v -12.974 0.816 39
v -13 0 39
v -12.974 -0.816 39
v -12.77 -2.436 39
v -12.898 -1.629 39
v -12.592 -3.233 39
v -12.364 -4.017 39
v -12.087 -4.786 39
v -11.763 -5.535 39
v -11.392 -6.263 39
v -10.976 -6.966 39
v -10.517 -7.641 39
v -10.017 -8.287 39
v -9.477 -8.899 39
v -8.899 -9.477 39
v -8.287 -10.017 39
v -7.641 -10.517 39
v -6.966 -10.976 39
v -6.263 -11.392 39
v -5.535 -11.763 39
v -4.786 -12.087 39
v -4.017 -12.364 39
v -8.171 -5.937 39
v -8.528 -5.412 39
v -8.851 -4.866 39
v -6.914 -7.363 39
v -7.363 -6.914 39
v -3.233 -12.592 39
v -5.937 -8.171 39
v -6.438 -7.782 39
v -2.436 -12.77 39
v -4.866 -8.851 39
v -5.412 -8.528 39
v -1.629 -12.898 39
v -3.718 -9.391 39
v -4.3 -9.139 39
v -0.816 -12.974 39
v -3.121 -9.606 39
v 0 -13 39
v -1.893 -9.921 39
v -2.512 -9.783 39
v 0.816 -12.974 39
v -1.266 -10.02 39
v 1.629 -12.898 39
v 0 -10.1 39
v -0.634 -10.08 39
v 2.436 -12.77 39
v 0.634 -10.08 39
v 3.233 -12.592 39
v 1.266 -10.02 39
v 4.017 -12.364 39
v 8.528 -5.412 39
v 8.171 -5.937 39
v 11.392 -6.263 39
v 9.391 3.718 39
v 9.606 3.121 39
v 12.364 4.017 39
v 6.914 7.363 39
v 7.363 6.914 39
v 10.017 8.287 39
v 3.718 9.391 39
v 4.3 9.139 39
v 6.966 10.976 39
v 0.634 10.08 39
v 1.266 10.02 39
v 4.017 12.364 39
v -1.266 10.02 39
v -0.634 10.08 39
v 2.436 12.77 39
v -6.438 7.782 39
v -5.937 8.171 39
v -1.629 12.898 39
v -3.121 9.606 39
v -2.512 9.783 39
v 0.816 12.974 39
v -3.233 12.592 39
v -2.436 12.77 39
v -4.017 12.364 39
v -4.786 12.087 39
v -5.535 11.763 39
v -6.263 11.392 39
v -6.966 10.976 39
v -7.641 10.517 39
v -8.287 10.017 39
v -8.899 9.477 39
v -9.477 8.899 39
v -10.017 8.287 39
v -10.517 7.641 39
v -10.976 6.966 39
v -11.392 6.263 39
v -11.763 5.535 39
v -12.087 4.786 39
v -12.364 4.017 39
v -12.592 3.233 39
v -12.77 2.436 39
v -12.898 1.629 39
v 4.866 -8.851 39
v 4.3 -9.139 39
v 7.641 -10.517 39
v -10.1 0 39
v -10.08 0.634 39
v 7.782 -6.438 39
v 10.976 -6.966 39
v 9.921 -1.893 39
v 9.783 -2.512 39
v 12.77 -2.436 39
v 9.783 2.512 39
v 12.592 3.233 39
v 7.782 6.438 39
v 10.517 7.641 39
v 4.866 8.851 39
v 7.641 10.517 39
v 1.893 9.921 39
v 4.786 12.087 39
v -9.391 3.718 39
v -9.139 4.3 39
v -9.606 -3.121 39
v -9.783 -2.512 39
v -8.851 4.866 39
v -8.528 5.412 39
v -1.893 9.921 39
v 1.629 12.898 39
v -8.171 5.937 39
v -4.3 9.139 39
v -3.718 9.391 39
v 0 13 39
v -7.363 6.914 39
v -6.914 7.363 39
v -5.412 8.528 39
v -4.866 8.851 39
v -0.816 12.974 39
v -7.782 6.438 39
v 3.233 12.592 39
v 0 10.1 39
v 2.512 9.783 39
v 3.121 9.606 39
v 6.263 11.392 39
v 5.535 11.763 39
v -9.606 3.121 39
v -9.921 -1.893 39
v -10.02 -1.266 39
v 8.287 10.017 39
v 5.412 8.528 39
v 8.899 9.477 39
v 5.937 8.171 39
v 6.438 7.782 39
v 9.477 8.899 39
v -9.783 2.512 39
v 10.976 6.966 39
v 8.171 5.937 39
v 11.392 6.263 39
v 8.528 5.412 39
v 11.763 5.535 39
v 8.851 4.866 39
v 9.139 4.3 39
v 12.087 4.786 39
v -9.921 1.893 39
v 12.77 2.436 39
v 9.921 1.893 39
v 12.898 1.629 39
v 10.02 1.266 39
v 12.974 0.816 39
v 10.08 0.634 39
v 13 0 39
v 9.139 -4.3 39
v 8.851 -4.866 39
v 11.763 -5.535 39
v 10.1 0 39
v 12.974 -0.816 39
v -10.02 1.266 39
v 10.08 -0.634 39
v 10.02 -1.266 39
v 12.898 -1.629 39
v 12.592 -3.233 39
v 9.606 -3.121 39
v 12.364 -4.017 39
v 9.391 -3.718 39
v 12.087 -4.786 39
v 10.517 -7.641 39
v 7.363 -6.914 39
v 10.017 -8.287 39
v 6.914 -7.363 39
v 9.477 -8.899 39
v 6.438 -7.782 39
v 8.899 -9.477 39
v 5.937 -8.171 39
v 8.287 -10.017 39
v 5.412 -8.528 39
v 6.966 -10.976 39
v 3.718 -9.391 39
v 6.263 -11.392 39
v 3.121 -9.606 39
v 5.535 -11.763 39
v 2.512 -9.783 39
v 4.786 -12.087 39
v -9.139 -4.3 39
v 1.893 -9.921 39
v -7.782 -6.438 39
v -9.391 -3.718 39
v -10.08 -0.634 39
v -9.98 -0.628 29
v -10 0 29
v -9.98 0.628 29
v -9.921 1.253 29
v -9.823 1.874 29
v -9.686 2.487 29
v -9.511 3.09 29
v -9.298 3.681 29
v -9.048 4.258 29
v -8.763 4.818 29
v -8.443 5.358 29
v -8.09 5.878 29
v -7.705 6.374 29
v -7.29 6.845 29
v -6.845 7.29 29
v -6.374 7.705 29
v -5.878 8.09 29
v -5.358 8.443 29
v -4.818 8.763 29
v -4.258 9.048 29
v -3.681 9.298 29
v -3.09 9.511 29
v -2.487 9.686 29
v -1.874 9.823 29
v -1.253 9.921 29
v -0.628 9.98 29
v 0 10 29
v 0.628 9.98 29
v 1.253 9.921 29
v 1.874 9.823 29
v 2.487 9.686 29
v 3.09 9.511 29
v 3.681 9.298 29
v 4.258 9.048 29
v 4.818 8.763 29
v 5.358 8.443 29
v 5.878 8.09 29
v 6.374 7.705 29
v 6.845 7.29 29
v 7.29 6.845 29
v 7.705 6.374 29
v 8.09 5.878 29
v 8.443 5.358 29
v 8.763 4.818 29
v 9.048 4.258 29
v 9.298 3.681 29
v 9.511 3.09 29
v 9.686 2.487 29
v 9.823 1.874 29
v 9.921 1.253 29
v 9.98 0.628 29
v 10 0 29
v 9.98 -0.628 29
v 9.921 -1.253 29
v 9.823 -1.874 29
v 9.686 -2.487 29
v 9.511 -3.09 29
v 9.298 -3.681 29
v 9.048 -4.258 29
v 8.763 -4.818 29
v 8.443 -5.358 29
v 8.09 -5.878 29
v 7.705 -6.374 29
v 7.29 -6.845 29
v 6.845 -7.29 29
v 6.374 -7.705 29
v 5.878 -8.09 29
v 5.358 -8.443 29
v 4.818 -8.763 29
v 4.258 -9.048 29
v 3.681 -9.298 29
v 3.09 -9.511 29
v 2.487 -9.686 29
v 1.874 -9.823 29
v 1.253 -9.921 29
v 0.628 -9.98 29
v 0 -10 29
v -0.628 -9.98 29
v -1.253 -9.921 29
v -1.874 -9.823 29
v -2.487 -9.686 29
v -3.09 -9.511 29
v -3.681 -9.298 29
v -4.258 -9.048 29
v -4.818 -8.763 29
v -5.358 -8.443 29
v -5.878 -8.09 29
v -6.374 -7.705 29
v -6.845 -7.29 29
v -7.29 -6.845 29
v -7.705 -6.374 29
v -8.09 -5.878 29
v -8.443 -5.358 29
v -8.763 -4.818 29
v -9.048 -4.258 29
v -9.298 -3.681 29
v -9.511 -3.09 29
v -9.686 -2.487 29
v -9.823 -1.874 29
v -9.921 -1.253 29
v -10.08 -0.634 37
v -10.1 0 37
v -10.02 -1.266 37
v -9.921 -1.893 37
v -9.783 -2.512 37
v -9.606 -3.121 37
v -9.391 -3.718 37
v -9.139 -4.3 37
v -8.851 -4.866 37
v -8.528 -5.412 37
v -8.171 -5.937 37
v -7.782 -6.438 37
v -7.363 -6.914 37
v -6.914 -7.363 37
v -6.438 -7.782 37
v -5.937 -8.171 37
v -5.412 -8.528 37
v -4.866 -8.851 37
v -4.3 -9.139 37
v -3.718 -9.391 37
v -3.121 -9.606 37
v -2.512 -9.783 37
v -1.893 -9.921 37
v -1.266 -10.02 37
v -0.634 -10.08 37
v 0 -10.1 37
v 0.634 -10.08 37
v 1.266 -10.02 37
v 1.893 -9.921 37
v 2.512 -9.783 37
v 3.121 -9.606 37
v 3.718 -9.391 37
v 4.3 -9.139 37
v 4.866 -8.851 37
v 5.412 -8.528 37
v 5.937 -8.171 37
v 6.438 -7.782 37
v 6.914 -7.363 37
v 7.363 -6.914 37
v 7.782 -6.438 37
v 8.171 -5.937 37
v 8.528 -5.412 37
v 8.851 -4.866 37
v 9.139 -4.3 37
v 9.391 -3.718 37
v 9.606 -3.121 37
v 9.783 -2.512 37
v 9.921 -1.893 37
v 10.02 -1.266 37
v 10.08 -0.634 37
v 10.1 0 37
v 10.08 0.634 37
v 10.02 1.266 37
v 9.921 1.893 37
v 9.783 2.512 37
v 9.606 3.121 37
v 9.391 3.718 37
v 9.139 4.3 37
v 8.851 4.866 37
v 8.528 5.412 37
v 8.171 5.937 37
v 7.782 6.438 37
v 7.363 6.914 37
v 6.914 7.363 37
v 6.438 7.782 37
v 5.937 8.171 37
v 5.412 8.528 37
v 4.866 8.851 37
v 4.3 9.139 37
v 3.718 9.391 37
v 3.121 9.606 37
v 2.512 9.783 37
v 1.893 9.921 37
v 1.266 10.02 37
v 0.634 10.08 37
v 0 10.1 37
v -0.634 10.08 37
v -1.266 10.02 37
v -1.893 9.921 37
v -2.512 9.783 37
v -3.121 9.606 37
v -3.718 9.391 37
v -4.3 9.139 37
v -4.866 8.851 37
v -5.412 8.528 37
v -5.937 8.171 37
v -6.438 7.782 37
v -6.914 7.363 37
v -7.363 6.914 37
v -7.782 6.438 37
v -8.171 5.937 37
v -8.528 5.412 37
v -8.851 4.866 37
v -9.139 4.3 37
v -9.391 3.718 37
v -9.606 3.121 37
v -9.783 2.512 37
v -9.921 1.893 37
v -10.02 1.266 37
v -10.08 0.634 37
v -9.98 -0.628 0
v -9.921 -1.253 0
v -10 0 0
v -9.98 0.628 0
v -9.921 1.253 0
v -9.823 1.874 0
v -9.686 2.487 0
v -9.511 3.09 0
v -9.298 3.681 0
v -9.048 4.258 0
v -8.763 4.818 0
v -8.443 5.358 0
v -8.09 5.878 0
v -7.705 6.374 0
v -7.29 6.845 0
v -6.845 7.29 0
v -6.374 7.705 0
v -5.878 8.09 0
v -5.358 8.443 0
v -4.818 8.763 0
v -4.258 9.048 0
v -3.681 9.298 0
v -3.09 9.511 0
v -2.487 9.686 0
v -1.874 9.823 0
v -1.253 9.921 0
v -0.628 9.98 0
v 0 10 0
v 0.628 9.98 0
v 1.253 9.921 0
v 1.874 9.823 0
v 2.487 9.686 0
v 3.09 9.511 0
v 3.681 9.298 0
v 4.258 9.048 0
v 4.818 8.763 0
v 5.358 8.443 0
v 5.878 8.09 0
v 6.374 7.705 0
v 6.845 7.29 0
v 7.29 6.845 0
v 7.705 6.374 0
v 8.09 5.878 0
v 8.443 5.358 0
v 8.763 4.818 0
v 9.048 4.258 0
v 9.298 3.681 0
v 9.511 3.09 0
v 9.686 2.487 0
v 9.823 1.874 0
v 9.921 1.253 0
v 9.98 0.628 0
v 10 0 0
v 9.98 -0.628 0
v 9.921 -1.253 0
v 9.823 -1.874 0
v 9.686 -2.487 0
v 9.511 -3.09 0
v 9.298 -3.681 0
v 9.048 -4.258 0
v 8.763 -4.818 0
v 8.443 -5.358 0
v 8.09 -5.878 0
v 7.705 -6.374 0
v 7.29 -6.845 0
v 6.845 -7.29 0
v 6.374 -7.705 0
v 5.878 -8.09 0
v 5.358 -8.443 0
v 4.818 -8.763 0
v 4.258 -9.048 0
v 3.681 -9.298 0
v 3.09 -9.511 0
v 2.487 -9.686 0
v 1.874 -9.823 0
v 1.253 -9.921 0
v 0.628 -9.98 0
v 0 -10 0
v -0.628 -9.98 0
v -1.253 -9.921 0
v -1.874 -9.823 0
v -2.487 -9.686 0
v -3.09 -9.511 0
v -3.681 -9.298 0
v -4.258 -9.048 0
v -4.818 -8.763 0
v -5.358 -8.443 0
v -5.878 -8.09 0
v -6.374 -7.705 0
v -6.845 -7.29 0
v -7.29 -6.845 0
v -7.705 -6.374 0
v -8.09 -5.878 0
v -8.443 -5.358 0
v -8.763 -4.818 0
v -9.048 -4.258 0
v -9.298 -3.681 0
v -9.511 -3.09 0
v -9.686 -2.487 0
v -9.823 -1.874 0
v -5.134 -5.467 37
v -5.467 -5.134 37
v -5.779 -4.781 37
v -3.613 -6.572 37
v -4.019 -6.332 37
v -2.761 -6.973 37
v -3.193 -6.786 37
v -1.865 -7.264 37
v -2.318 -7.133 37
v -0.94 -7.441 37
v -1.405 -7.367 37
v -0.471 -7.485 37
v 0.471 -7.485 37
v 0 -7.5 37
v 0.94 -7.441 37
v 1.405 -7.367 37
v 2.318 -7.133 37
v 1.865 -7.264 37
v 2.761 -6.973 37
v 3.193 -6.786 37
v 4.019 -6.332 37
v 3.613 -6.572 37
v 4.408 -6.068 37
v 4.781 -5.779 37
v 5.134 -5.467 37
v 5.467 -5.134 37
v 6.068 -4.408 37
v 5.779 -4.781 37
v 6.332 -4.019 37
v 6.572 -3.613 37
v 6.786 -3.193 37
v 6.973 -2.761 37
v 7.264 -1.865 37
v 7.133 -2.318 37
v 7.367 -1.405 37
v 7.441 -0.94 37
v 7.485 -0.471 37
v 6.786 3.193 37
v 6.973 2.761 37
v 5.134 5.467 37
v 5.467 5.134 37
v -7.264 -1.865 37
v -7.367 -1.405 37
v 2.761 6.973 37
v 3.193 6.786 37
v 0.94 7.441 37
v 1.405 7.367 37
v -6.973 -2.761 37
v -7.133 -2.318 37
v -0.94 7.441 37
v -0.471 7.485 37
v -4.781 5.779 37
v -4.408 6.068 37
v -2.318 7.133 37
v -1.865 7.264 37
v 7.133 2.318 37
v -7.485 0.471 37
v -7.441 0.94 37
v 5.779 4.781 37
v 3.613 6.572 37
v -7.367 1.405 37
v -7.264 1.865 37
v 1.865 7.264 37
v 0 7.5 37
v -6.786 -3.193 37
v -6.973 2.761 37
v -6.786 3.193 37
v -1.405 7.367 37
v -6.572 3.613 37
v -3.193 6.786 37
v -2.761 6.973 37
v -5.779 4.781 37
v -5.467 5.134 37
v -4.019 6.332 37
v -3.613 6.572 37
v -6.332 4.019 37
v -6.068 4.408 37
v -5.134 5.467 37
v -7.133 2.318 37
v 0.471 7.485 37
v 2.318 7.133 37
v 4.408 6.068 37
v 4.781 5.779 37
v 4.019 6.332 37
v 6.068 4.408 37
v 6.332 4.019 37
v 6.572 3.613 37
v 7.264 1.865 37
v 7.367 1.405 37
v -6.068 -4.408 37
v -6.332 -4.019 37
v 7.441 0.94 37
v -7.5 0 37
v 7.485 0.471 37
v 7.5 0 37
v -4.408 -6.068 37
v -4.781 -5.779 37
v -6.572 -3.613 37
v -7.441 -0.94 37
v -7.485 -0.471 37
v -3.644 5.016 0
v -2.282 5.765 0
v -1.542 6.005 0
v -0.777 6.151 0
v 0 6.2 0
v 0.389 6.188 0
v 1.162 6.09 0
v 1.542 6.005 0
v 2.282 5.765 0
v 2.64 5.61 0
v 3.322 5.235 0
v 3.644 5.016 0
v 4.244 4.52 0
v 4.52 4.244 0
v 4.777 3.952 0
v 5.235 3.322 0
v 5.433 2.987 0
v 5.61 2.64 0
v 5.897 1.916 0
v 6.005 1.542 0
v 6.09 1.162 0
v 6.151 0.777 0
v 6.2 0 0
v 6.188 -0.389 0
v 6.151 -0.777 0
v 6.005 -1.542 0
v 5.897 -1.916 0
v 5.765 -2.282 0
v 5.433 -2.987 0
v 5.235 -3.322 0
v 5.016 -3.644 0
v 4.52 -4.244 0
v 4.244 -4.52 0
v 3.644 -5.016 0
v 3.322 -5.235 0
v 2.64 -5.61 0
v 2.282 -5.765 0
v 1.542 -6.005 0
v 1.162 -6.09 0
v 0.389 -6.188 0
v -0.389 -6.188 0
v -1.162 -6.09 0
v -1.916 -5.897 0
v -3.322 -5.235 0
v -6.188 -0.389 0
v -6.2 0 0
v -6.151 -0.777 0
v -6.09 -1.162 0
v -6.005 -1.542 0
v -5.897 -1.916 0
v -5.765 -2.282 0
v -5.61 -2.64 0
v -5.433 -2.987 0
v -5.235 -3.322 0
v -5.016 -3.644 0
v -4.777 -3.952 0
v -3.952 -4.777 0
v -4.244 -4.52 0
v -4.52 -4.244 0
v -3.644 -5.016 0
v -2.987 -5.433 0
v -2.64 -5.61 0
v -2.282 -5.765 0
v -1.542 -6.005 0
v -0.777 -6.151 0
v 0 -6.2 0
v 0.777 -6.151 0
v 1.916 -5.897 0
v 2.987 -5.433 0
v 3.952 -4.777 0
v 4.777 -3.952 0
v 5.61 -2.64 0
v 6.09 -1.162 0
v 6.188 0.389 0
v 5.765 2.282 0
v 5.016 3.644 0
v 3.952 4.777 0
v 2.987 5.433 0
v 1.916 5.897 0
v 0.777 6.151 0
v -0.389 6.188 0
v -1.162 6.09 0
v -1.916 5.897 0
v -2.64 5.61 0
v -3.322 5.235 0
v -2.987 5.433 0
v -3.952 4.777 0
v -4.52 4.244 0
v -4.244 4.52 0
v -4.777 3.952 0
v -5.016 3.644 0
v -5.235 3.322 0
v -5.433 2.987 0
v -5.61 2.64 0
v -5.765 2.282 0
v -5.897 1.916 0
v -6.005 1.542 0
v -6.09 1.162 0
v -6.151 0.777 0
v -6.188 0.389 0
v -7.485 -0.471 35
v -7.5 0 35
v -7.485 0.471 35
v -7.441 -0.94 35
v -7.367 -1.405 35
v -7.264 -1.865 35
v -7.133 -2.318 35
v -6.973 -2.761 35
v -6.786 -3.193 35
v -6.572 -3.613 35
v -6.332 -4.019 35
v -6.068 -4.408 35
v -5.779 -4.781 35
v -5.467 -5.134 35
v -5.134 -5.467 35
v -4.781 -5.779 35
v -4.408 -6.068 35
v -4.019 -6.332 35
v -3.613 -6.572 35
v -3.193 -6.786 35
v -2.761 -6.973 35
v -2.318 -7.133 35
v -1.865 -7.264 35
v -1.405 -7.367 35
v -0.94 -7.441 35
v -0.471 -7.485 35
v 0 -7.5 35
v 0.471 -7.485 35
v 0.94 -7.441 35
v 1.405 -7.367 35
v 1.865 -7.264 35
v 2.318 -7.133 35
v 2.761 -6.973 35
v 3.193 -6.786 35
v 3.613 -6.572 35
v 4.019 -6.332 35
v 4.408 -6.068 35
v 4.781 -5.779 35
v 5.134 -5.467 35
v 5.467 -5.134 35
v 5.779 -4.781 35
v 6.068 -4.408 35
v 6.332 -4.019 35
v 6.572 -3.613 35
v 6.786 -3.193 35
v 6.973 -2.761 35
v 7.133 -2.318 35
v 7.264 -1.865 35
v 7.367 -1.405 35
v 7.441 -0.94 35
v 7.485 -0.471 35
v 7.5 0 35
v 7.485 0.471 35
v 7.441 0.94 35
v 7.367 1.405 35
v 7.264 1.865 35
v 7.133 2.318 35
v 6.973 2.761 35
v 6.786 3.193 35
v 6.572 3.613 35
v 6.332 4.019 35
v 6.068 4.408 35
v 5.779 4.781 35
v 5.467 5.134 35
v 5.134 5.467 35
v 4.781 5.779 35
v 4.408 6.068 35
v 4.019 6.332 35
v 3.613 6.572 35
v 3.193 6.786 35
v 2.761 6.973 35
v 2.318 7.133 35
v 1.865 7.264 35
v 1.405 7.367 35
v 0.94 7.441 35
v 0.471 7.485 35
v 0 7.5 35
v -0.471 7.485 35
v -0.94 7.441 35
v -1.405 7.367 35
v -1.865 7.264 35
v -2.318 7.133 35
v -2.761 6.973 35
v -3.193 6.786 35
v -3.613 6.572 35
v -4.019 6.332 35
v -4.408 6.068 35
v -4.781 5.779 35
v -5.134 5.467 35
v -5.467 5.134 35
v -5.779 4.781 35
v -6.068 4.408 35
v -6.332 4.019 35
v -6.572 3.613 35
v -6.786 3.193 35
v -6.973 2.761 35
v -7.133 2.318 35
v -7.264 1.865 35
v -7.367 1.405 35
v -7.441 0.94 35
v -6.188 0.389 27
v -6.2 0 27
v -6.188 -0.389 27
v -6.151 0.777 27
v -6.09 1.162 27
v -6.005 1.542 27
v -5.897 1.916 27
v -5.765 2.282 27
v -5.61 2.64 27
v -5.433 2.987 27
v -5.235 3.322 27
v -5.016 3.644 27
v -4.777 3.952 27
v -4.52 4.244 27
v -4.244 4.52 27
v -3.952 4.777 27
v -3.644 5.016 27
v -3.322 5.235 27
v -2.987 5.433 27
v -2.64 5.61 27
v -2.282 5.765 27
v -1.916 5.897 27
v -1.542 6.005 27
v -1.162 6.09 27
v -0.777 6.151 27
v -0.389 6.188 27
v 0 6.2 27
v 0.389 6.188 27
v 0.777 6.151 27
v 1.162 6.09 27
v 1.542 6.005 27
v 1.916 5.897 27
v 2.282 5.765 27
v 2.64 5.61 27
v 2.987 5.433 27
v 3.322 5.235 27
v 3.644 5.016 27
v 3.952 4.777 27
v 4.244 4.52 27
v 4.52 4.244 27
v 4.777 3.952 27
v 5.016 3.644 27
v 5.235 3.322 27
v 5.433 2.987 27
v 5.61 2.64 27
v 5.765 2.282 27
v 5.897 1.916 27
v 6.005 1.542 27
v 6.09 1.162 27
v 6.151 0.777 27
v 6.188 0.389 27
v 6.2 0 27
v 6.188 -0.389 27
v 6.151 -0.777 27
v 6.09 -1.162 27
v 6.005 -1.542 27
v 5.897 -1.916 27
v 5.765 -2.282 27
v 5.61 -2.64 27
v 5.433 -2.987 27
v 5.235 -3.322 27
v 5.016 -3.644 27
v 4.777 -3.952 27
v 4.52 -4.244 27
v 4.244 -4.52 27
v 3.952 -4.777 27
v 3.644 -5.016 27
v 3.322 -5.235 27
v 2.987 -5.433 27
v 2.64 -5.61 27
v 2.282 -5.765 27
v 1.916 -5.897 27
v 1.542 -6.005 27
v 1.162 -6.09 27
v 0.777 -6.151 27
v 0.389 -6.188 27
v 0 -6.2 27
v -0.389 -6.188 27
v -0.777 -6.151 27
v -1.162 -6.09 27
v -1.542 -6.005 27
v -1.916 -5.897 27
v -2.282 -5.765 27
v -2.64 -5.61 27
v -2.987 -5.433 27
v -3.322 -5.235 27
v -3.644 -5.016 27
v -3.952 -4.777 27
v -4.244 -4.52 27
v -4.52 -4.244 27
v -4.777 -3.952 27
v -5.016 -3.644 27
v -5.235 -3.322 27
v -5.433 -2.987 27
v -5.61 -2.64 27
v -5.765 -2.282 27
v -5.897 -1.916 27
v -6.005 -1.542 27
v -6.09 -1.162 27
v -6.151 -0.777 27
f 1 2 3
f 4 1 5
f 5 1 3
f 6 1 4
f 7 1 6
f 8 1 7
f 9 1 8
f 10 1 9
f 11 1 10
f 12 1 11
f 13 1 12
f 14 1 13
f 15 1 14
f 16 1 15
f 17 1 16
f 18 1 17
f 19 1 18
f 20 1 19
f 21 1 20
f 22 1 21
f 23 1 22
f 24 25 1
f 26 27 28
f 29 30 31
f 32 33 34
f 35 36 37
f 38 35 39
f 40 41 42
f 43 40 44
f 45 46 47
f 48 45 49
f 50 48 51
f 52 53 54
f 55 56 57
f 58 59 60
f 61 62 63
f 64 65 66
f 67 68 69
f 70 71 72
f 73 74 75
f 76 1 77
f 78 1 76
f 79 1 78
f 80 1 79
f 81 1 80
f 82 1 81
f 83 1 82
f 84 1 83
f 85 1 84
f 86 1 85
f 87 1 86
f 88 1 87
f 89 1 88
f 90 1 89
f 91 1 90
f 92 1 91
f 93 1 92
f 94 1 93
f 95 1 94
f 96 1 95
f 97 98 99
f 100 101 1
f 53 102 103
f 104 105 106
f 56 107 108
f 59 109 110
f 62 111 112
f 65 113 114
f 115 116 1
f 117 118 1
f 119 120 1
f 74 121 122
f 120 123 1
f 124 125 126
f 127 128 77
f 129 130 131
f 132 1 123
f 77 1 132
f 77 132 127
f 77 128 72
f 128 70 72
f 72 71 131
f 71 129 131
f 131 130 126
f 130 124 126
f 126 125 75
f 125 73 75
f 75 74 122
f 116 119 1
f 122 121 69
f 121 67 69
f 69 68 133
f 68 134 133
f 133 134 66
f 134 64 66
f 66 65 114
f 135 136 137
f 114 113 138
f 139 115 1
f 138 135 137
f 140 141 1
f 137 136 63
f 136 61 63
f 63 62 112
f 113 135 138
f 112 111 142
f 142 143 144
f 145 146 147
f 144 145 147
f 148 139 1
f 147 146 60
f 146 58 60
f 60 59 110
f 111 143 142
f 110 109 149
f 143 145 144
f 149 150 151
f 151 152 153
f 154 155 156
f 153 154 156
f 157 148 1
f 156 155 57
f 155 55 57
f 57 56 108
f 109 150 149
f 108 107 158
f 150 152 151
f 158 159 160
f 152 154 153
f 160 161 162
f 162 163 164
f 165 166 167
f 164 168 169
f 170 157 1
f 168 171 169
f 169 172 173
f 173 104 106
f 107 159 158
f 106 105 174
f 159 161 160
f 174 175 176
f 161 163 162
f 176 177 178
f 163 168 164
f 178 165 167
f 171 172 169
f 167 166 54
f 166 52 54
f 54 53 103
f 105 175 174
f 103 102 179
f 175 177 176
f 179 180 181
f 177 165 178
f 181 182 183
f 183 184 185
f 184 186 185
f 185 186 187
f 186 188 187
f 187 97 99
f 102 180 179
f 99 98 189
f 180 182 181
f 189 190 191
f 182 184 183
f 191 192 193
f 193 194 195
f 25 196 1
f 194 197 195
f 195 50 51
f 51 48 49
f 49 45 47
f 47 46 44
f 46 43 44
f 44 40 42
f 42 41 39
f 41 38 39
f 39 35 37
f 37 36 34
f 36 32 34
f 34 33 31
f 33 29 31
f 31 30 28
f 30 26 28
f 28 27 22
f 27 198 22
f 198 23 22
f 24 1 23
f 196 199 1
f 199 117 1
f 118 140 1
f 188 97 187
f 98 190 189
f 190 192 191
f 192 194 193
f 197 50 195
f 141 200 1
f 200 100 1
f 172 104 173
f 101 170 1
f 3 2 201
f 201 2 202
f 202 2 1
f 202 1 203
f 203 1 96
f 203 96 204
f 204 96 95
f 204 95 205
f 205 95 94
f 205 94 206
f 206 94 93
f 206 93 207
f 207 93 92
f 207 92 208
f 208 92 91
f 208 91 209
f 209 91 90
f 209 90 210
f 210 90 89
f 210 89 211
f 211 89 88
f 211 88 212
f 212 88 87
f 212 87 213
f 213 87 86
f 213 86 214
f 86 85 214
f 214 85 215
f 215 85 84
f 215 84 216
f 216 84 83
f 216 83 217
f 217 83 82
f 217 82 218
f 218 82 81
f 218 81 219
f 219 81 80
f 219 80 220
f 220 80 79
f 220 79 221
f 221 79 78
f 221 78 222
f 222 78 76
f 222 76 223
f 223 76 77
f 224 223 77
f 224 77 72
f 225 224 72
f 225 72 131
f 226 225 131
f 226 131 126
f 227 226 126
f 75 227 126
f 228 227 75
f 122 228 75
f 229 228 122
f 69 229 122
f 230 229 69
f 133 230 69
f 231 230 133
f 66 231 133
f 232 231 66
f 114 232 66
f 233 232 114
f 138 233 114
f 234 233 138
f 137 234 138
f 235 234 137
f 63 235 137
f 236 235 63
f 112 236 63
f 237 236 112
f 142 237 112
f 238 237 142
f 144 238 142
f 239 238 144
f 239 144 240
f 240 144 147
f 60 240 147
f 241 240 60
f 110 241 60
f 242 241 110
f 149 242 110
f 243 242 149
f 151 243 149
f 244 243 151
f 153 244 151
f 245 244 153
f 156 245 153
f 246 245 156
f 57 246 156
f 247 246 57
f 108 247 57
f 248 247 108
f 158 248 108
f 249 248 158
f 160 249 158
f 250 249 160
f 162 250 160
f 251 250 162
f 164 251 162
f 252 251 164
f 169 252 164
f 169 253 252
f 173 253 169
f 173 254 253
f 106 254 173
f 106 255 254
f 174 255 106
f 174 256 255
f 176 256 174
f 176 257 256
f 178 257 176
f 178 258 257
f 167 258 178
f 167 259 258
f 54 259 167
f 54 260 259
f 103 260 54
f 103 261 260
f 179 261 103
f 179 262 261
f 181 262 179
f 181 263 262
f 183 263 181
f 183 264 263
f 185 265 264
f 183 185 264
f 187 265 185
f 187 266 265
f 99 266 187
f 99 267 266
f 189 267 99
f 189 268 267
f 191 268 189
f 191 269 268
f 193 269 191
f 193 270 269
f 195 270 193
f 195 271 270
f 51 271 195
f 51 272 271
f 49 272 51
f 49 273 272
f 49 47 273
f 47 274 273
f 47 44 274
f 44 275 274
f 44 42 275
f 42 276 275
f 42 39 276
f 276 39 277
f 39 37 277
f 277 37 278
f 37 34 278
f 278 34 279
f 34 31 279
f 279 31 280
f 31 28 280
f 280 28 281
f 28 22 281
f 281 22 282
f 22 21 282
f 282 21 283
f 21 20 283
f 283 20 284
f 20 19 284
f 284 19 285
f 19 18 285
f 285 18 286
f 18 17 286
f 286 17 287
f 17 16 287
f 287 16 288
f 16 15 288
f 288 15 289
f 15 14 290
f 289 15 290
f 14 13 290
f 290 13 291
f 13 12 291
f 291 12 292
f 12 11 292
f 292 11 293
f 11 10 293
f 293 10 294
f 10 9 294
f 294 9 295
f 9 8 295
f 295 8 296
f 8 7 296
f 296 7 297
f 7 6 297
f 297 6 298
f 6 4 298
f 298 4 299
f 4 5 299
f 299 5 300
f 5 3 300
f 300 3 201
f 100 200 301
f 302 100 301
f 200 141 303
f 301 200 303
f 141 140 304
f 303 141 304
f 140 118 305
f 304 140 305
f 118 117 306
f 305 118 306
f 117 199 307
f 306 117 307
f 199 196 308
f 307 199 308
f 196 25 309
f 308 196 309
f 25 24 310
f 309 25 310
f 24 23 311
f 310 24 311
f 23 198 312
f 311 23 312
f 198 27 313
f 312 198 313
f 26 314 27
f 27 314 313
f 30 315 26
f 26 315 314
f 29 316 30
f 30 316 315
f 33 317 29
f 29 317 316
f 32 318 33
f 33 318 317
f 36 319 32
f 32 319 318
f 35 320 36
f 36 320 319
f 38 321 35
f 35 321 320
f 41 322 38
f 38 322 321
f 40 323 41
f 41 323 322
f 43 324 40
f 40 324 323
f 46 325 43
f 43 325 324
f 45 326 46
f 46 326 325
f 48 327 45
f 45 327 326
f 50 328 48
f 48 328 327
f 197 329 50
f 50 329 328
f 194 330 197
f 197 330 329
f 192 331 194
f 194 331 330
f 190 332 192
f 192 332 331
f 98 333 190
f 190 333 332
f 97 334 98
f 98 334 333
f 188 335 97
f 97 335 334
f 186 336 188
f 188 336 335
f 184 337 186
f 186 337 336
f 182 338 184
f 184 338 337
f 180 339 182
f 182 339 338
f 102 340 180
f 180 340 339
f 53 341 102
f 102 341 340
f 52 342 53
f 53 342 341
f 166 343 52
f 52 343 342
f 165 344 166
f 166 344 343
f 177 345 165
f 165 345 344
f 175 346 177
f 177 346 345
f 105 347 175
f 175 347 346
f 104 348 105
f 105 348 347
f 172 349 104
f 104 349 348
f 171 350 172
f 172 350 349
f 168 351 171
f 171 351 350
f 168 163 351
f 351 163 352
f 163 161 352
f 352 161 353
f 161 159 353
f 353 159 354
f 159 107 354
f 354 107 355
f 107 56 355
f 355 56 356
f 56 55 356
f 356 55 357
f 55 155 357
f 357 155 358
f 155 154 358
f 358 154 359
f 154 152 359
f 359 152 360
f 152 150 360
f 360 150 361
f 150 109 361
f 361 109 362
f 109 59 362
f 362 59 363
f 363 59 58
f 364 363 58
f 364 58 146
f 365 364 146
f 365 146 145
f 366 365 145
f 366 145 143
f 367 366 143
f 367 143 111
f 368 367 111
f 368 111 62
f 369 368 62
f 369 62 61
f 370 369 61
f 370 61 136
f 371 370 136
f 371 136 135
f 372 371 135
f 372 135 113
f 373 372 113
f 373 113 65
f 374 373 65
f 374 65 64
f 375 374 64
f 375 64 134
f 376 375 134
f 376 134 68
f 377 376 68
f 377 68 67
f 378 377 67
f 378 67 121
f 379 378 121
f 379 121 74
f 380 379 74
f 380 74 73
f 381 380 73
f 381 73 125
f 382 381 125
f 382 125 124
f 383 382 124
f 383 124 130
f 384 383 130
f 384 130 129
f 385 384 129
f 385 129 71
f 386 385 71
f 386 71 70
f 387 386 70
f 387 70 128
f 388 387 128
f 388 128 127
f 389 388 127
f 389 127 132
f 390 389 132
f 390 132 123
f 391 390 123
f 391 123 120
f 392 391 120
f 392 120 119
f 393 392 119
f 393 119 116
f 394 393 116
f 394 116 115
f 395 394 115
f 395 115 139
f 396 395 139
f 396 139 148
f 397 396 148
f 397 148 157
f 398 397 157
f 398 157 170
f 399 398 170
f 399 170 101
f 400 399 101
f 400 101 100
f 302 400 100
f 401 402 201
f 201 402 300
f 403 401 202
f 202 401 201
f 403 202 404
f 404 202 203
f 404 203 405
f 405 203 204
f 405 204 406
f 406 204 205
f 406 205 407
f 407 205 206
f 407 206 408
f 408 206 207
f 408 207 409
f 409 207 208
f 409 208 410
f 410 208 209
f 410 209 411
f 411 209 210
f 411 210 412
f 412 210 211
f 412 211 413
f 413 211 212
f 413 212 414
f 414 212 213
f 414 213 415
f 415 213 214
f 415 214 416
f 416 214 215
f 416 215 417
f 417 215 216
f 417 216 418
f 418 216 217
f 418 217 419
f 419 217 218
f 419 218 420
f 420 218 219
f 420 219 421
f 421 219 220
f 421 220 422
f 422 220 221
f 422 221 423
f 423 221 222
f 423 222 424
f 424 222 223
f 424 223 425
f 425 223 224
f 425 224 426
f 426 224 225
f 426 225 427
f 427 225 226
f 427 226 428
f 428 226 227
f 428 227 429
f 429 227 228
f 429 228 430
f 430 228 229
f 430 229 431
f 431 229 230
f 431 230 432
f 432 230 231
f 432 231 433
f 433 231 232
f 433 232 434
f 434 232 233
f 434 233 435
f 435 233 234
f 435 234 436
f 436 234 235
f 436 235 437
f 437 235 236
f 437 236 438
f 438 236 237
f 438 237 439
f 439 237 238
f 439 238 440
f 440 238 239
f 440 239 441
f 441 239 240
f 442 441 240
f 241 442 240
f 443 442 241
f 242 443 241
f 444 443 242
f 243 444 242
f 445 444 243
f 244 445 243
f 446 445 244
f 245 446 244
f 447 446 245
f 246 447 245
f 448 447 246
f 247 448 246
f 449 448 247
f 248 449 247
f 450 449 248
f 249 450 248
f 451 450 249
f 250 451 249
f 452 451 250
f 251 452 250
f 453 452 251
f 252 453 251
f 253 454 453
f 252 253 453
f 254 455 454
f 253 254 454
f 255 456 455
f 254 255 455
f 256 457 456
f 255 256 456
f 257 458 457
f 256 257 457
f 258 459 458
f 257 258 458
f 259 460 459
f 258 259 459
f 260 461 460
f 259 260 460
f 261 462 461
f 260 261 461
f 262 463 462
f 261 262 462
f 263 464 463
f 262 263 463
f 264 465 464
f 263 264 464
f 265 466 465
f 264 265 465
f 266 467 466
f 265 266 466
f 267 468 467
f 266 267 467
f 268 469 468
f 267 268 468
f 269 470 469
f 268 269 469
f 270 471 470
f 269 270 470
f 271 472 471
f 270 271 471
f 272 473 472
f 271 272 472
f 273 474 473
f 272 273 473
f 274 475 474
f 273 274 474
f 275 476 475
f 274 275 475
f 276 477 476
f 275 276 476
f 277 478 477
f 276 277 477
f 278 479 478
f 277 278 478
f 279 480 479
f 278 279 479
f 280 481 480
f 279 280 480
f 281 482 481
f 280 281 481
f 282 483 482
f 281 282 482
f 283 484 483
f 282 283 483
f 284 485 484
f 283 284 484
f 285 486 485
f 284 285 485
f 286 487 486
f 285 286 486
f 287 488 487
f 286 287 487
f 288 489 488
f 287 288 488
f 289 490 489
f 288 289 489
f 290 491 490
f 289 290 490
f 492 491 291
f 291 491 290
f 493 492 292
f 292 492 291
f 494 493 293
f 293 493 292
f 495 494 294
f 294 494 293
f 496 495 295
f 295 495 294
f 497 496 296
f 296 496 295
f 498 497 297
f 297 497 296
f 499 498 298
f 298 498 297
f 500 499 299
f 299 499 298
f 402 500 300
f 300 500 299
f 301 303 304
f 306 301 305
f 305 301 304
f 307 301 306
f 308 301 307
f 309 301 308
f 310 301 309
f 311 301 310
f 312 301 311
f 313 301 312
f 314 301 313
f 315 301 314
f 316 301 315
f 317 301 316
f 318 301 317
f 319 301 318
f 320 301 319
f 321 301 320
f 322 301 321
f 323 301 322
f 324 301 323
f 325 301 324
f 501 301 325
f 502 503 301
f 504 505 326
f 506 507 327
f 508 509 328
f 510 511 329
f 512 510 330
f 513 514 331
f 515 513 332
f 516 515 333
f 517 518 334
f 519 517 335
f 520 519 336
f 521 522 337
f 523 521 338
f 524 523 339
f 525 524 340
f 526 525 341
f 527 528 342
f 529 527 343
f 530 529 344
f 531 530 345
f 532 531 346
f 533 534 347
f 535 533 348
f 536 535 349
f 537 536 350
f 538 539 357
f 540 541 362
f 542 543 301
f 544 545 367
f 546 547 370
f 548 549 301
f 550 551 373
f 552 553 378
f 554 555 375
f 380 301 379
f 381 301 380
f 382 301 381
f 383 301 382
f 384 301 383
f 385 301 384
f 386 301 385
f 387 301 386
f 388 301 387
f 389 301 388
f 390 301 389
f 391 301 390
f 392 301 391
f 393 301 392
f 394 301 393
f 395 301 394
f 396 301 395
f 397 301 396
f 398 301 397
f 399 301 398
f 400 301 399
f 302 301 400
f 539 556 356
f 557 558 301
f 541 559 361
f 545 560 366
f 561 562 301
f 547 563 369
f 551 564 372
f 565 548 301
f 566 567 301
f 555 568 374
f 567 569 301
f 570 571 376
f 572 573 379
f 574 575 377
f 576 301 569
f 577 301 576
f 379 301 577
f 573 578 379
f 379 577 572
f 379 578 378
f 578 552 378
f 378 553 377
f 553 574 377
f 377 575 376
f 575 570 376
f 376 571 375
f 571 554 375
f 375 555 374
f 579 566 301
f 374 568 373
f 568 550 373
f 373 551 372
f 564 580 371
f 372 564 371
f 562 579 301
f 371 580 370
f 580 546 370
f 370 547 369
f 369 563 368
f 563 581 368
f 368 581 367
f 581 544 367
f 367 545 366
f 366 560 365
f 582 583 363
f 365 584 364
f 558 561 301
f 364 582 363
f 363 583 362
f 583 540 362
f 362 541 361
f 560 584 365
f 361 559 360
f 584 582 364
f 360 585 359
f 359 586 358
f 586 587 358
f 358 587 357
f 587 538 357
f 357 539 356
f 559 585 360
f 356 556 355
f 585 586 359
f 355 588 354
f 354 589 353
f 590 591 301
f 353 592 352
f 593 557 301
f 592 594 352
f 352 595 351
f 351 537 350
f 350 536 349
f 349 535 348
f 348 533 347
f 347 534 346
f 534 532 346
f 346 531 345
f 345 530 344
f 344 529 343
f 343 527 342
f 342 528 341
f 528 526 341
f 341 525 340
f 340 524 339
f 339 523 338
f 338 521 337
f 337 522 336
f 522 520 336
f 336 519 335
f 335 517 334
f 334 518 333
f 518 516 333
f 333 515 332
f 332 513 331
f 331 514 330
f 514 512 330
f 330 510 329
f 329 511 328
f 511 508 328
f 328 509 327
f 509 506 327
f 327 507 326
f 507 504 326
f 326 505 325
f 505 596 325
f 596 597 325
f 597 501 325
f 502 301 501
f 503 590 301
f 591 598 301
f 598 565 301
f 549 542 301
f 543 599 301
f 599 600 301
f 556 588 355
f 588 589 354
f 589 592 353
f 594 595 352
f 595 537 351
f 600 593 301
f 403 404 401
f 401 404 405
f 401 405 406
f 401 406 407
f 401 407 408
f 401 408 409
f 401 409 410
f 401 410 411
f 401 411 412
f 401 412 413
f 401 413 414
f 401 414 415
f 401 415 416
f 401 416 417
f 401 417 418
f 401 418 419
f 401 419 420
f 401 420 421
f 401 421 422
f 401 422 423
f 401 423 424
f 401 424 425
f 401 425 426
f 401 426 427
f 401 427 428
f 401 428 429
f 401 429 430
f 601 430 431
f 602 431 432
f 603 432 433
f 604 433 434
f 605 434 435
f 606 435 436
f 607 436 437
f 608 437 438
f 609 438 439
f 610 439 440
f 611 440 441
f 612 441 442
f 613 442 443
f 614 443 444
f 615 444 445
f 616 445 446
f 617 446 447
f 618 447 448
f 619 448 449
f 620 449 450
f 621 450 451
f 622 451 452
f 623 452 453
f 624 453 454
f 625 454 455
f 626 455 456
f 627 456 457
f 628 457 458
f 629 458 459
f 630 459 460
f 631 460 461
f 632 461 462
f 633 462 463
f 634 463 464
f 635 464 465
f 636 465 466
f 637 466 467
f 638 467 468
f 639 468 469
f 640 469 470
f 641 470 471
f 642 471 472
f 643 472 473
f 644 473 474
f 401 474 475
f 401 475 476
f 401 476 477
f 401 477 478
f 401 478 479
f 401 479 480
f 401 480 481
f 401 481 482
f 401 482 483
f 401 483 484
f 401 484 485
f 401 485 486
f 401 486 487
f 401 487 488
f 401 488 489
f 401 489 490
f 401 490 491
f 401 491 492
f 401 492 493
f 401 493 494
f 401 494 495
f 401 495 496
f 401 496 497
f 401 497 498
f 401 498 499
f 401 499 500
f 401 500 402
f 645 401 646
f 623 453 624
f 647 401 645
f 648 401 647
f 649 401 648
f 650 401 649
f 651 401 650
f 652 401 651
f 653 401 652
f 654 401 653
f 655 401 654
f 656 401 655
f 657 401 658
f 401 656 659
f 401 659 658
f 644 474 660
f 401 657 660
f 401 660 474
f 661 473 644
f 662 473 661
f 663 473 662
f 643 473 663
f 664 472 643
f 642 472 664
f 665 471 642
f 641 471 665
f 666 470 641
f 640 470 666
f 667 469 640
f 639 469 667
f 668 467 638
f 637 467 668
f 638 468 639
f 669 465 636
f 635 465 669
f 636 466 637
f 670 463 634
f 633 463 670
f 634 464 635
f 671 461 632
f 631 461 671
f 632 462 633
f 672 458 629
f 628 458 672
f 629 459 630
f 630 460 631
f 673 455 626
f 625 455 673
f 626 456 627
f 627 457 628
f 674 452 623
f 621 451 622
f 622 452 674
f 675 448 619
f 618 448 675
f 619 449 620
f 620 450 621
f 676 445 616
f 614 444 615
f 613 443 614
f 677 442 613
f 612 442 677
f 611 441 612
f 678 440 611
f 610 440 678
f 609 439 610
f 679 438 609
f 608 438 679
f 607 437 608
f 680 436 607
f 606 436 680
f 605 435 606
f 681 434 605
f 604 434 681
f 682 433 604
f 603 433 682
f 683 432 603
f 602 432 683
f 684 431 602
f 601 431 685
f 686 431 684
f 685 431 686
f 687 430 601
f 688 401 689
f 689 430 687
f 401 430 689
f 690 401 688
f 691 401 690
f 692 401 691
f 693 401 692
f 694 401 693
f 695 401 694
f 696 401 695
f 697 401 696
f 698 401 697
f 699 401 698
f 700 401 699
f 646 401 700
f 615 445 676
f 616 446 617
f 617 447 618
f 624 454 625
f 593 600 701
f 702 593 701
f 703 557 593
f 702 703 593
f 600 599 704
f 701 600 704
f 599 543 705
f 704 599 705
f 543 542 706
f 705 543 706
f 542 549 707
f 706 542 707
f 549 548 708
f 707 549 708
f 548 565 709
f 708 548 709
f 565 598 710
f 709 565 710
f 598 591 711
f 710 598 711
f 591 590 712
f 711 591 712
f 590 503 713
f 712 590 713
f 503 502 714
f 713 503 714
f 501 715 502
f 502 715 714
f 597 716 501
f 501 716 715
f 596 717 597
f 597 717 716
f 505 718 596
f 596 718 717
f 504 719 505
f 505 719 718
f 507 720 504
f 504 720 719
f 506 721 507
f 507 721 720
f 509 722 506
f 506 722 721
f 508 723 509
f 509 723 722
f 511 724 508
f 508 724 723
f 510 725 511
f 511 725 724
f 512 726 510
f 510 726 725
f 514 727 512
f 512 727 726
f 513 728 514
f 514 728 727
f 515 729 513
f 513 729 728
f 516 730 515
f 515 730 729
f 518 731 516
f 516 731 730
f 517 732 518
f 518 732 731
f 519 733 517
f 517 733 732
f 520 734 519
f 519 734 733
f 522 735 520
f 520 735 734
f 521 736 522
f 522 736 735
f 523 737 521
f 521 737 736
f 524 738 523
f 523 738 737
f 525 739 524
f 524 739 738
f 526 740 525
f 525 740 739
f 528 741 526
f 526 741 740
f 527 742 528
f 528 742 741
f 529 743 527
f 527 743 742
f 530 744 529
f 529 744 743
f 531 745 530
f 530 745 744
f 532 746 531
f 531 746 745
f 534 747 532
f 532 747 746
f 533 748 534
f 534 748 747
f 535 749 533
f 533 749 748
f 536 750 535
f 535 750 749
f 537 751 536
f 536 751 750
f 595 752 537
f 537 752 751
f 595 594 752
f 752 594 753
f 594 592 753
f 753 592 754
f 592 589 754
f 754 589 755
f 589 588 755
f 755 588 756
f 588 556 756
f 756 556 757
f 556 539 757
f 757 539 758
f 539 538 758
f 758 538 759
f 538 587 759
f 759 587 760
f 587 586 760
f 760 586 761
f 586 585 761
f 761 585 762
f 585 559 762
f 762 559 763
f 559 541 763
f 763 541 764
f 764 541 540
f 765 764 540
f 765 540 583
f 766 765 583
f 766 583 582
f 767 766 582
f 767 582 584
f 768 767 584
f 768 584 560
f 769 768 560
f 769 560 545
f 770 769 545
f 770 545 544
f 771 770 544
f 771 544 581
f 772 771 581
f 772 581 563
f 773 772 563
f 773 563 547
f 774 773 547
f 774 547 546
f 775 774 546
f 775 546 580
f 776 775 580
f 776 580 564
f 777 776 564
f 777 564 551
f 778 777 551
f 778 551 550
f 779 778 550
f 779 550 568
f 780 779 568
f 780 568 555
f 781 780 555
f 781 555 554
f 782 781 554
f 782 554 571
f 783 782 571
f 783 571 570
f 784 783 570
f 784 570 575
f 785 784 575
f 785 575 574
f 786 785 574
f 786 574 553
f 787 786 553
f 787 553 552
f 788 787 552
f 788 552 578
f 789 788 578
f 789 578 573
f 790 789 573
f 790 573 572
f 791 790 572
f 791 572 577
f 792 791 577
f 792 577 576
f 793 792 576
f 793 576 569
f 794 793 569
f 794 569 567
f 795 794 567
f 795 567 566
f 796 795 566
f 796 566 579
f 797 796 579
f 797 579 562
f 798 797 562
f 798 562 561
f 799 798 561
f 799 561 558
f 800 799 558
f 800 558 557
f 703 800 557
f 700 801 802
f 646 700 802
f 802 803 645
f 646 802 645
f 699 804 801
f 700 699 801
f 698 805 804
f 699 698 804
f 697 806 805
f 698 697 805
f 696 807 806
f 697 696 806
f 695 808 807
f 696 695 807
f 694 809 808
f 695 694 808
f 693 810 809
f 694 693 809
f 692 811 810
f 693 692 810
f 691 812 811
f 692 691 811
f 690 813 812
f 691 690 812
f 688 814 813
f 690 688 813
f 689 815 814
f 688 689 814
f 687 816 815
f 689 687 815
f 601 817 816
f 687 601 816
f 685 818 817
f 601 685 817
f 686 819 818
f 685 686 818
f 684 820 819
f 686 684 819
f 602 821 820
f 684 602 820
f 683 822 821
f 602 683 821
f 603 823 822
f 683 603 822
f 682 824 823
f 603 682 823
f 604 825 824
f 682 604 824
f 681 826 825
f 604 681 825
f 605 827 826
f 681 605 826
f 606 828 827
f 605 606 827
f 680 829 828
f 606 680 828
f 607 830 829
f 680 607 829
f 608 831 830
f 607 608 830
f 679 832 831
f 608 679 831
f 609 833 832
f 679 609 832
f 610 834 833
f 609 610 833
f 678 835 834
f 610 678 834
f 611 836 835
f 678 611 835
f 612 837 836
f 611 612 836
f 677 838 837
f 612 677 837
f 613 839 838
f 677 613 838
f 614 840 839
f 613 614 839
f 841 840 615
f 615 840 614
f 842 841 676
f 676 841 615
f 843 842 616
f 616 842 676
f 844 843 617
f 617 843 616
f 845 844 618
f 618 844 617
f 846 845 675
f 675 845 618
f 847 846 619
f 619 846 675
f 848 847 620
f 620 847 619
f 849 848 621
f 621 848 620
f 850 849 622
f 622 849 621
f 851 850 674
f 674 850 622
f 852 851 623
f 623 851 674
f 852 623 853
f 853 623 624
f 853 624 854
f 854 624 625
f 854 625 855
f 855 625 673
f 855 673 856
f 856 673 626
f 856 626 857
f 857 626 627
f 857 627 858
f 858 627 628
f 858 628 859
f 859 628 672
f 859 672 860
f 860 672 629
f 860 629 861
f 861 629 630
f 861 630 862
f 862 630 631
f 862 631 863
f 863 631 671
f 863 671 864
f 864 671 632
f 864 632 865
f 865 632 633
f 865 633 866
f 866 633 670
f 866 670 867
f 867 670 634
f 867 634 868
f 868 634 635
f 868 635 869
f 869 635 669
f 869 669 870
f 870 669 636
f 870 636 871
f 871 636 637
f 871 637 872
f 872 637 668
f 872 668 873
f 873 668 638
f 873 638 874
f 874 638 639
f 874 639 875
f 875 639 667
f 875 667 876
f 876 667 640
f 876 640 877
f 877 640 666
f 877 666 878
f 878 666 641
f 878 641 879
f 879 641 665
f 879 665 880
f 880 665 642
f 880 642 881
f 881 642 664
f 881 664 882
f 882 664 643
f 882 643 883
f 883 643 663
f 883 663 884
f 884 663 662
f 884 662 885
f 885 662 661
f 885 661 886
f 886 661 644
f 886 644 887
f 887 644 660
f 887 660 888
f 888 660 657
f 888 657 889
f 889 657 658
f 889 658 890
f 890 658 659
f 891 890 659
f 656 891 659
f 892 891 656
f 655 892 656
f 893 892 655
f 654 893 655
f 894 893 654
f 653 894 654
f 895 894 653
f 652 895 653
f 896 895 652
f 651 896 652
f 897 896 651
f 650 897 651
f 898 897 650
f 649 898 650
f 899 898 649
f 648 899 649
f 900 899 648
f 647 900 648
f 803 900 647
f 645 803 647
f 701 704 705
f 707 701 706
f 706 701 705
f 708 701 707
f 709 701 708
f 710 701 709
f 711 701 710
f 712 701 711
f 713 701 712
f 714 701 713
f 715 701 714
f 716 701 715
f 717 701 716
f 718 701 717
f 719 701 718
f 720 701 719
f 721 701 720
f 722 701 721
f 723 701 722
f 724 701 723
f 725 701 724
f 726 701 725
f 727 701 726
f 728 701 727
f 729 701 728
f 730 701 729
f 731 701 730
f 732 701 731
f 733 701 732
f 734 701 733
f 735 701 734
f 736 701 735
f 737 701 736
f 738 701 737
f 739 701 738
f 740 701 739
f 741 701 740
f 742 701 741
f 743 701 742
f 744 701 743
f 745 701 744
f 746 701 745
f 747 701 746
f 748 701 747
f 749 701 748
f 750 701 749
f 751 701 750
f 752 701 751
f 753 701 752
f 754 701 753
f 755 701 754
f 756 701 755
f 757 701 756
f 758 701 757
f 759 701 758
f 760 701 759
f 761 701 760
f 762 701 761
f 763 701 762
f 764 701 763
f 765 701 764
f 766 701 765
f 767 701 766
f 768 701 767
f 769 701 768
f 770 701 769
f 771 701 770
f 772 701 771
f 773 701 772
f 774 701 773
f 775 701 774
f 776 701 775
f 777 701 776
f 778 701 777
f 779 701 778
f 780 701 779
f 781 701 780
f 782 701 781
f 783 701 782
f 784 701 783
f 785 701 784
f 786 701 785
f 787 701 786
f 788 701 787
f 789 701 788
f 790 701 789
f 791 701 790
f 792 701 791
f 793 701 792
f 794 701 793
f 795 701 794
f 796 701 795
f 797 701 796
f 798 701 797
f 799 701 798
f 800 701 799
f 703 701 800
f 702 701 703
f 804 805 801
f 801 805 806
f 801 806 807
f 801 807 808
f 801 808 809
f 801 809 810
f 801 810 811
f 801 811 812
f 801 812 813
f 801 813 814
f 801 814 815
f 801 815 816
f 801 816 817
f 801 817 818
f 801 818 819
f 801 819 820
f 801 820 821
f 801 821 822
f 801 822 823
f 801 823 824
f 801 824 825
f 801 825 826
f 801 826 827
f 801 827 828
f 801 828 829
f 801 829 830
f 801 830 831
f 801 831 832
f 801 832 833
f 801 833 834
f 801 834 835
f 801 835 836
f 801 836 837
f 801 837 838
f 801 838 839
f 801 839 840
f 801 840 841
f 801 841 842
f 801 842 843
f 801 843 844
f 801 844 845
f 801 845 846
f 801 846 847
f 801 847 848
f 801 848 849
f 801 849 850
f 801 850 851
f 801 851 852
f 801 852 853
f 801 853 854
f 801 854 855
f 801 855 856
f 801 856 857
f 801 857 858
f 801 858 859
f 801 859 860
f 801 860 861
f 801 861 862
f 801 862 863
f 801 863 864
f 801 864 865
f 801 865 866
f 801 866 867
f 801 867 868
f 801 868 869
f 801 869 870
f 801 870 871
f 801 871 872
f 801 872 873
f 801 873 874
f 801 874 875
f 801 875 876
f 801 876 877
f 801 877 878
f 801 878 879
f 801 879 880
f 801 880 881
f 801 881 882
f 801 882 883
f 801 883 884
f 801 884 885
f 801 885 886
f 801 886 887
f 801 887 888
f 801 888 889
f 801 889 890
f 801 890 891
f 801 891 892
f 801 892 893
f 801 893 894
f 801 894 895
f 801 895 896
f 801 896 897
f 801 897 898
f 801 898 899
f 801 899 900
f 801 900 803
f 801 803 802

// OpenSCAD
// C-EGG Antriebsteile 3D Druck


difference() {
  cylinder(h=30, r=10, $fn=100);
  translate([0,0,-1]) cylinder(h=28, r=6.2, $fn=100);
}


difference() {
  translate([0,0,29]) cylinder(h=10, r2=13, r1=10, $fn=100);
  translate([0,0,35]) cylinder(h=12, r=7.5,$fn=100);
  translate([0,0,37]) cylinder(h=10, r=10.1,$fn=100);
}
